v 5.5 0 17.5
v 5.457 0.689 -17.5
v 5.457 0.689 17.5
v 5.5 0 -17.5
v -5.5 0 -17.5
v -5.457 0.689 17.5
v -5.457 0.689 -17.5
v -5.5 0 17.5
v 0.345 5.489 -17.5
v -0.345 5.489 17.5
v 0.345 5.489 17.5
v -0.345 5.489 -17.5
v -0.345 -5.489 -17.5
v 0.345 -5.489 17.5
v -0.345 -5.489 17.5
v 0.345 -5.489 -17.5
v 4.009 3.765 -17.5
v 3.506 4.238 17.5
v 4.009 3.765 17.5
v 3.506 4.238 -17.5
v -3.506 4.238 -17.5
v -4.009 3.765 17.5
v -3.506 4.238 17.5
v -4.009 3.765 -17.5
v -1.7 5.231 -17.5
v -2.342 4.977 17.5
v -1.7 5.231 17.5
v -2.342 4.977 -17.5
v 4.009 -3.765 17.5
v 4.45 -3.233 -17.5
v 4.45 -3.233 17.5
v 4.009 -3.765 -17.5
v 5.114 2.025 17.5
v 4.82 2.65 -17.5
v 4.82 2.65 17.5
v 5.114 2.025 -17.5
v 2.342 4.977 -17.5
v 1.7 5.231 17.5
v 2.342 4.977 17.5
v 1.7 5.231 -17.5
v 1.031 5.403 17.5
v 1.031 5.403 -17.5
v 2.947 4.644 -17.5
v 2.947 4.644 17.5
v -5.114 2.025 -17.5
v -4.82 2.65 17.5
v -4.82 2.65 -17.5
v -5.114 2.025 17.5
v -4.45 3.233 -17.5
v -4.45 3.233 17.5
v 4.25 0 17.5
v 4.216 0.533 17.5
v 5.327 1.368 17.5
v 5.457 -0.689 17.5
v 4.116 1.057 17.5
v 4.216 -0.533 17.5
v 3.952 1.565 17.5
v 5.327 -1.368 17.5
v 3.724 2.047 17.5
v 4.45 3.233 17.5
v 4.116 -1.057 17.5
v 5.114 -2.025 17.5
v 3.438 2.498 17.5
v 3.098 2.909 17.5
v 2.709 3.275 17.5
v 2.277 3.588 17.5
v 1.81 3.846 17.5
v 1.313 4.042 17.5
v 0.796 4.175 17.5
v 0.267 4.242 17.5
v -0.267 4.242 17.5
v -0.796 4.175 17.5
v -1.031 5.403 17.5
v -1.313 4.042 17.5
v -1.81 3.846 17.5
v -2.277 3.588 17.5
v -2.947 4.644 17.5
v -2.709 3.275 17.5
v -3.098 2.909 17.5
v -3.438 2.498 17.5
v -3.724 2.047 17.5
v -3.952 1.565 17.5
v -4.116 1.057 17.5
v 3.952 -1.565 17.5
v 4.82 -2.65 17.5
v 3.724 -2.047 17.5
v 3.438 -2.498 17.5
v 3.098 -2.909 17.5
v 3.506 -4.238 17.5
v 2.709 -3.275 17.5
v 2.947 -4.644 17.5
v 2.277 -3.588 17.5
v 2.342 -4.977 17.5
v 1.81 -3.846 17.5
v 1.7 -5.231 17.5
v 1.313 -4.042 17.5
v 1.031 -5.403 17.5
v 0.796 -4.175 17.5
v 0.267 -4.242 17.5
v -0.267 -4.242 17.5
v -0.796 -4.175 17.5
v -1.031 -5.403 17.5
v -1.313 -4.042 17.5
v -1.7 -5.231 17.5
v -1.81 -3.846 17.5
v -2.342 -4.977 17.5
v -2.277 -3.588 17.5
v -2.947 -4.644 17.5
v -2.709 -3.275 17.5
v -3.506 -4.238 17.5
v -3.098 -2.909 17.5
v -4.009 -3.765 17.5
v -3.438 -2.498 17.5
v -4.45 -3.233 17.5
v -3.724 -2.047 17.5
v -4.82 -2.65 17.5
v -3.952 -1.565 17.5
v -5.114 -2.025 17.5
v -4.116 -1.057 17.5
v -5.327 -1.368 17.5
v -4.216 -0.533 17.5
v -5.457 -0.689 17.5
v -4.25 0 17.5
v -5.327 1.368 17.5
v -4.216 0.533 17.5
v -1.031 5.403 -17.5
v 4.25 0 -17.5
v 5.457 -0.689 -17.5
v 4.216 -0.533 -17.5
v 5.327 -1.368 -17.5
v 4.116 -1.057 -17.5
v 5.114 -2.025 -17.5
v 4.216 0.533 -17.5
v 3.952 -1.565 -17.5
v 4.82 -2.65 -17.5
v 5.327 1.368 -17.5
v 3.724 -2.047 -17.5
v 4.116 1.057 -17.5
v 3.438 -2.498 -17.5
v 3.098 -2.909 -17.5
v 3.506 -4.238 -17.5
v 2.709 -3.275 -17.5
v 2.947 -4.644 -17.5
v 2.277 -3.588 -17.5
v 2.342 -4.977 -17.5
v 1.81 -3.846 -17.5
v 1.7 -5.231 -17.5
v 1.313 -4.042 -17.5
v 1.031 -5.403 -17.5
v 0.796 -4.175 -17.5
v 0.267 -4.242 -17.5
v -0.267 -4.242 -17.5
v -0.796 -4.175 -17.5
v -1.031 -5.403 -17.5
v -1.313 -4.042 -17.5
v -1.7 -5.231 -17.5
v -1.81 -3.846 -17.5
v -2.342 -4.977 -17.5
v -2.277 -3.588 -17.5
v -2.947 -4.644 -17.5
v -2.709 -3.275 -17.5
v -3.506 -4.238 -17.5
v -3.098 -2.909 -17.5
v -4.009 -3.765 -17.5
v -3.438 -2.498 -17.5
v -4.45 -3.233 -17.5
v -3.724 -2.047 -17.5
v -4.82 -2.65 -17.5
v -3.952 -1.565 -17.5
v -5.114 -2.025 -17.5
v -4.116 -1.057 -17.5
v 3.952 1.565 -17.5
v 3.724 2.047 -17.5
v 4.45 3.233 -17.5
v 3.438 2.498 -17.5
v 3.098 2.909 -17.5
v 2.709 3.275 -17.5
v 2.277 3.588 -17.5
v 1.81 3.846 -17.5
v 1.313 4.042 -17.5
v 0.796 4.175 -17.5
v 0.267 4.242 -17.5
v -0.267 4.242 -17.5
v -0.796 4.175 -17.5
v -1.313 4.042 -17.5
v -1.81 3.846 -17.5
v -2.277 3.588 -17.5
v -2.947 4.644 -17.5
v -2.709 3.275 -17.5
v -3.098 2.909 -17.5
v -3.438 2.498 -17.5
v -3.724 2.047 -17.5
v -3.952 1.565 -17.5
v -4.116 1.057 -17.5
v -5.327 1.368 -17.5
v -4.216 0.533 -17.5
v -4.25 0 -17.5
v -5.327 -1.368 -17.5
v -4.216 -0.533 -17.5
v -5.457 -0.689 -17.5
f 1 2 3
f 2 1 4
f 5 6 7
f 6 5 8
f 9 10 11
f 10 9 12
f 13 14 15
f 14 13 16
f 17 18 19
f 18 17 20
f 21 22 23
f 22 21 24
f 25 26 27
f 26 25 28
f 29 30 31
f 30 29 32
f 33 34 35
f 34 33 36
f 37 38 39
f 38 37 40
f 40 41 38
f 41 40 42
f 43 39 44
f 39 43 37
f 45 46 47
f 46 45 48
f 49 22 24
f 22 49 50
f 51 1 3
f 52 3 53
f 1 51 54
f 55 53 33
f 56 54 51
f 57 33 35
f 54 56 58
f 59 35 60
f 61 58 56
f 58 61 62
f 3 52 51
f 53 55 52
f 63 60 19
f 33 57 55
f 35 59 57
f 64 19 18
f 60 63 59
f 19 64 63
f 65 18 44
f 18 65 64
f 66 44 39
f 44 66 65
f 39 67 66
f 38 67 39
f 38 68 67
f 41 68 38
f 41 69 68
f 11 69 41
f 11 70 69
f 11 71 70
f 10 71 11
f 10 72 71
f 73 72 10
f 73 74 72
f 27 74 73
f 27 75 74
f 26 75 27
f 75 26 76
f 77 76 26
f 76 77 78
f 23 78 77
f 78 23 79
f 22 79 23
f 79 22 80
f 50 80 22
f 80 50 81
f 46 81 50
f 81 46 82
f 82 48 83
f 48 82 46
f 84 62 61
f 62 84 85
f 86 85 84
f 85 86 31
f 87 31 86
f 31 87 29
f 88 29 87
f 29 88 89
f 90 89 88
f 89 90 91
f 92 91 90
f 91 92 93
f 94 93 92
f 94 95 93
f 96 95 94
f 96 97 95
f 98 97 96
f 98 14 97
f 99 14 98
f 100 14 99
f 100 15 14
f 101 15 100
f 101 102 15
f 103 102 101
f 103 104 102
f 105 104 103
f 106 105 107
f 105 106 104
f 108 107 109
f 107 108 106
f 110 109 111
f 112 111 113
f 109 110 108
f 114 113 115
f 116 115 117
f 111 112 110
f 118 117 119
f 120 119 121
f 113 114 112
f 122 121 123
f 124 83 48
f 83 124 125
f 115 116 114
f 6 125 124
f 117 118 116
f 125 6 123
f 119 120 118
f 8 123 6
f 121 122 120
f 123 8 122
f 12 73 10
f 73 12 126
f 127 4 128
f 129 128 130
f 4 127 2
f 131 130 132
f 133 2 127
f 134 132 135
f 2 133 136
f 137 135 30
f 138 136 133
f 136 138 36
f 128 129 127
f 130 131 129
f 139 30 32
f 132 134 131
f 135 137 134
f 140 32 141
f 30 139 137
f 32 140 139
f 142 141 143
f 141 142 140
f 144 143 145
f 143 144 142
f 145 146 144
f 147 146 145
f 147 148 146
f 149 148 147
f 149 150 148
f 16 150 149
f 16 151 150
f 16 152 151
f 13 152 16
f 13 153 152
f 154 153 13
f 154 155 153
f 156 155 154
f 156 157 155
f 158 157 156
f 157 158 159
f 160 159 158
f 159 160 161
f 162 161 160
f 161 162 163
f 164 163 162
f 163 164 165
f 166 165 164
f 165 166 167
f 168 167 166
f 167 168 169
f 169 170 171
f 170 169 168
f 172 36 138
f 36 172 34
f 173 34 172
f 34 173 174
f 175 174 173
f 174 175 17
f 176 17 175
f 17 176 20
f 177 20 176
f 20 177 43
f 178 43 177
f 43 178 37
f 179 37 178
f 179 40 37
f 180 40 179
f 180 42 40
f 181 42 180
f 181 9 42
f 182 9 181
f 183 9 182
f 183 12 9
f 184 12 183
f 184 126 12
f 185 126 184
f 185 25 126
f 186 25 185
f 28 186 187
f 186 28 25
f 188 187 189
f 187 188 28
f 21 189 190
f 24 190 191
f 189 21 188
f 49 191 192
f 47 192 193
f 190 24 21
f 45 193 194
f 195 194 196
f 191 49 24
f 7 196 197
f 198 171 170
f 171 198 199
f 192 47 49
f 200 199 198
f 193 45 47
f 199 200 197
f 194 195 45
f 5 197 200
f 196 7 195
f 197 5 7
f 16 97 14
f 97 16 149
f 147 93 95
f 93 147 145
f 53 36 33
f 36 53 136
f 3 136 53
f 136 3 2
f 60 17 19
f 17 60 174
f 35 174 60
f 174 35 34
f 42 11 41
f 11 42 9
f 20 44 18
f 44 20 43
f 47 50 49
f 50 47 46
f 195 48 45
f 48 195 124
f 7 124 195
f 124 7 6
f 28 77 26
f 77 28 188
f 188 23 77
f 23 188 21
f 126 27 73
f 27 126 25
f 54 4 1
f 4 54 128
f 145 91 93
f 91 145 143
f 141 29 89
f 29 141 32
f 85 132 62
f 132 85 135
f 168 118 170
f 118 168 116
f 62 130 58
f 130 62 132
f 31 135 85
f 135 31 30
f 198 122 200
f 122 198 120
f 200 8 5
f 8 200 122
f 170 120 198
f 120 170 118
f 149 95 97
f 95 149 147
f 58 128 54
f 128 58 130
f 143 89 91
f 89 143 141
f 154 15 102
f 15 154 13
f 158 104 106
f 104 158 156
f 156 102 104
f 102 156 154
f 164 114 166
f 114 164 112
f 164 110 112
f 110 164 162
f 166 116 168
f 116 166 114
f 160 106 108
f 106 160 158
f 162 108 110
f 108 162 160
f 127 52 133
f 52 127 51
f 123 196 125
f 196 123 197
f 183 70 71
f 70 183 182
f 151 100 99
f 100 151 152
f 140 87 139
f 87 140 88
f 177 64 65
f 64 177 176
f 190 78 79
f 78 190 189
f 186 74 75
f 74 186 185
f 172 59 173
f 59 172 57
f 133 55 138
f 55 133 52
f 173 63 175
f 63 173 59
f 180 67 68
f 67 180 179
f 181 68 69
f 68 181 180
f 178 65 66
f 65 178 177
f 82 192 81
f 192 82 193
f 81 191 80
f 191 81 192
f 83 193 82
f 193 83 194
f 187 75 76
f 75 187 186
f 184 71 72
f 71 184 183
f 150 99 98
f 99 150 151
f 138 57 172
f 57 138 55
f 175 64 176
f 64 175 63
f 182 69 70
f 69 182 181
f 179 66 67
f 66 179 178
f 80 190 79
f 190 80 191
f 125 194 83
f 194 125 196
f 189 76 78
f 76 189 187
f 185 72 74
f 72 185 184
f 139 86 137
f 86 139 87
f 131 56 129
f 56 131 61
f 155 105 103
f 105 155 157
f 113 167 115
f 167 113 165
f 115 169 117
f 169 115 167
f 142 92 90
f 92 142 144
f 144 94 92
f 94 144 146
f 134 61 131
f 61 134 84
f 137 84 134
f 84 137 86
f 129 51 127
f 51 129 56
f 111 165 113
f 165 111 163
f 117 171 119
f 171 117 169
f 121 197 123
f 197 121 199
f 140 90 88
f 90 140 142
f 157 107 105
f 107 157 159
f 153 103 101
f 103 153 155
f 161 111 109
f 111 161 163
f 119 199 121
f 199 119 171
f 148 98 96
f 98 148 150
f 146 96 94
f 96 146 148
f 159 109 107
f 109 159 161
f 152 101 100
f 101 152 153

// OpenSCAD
$fn = 50;


difference() {
	union() {
		translate(v = [0, 0, -17.5000000000]) {
			cylinder(h = 35, r = 5.5000000000);
		}
	}
	union() {
		translate(v = [0, 0, -100.0000000000]) {
			cylinder(h = 200, r = 4.2500000000);
		}
	}
}
